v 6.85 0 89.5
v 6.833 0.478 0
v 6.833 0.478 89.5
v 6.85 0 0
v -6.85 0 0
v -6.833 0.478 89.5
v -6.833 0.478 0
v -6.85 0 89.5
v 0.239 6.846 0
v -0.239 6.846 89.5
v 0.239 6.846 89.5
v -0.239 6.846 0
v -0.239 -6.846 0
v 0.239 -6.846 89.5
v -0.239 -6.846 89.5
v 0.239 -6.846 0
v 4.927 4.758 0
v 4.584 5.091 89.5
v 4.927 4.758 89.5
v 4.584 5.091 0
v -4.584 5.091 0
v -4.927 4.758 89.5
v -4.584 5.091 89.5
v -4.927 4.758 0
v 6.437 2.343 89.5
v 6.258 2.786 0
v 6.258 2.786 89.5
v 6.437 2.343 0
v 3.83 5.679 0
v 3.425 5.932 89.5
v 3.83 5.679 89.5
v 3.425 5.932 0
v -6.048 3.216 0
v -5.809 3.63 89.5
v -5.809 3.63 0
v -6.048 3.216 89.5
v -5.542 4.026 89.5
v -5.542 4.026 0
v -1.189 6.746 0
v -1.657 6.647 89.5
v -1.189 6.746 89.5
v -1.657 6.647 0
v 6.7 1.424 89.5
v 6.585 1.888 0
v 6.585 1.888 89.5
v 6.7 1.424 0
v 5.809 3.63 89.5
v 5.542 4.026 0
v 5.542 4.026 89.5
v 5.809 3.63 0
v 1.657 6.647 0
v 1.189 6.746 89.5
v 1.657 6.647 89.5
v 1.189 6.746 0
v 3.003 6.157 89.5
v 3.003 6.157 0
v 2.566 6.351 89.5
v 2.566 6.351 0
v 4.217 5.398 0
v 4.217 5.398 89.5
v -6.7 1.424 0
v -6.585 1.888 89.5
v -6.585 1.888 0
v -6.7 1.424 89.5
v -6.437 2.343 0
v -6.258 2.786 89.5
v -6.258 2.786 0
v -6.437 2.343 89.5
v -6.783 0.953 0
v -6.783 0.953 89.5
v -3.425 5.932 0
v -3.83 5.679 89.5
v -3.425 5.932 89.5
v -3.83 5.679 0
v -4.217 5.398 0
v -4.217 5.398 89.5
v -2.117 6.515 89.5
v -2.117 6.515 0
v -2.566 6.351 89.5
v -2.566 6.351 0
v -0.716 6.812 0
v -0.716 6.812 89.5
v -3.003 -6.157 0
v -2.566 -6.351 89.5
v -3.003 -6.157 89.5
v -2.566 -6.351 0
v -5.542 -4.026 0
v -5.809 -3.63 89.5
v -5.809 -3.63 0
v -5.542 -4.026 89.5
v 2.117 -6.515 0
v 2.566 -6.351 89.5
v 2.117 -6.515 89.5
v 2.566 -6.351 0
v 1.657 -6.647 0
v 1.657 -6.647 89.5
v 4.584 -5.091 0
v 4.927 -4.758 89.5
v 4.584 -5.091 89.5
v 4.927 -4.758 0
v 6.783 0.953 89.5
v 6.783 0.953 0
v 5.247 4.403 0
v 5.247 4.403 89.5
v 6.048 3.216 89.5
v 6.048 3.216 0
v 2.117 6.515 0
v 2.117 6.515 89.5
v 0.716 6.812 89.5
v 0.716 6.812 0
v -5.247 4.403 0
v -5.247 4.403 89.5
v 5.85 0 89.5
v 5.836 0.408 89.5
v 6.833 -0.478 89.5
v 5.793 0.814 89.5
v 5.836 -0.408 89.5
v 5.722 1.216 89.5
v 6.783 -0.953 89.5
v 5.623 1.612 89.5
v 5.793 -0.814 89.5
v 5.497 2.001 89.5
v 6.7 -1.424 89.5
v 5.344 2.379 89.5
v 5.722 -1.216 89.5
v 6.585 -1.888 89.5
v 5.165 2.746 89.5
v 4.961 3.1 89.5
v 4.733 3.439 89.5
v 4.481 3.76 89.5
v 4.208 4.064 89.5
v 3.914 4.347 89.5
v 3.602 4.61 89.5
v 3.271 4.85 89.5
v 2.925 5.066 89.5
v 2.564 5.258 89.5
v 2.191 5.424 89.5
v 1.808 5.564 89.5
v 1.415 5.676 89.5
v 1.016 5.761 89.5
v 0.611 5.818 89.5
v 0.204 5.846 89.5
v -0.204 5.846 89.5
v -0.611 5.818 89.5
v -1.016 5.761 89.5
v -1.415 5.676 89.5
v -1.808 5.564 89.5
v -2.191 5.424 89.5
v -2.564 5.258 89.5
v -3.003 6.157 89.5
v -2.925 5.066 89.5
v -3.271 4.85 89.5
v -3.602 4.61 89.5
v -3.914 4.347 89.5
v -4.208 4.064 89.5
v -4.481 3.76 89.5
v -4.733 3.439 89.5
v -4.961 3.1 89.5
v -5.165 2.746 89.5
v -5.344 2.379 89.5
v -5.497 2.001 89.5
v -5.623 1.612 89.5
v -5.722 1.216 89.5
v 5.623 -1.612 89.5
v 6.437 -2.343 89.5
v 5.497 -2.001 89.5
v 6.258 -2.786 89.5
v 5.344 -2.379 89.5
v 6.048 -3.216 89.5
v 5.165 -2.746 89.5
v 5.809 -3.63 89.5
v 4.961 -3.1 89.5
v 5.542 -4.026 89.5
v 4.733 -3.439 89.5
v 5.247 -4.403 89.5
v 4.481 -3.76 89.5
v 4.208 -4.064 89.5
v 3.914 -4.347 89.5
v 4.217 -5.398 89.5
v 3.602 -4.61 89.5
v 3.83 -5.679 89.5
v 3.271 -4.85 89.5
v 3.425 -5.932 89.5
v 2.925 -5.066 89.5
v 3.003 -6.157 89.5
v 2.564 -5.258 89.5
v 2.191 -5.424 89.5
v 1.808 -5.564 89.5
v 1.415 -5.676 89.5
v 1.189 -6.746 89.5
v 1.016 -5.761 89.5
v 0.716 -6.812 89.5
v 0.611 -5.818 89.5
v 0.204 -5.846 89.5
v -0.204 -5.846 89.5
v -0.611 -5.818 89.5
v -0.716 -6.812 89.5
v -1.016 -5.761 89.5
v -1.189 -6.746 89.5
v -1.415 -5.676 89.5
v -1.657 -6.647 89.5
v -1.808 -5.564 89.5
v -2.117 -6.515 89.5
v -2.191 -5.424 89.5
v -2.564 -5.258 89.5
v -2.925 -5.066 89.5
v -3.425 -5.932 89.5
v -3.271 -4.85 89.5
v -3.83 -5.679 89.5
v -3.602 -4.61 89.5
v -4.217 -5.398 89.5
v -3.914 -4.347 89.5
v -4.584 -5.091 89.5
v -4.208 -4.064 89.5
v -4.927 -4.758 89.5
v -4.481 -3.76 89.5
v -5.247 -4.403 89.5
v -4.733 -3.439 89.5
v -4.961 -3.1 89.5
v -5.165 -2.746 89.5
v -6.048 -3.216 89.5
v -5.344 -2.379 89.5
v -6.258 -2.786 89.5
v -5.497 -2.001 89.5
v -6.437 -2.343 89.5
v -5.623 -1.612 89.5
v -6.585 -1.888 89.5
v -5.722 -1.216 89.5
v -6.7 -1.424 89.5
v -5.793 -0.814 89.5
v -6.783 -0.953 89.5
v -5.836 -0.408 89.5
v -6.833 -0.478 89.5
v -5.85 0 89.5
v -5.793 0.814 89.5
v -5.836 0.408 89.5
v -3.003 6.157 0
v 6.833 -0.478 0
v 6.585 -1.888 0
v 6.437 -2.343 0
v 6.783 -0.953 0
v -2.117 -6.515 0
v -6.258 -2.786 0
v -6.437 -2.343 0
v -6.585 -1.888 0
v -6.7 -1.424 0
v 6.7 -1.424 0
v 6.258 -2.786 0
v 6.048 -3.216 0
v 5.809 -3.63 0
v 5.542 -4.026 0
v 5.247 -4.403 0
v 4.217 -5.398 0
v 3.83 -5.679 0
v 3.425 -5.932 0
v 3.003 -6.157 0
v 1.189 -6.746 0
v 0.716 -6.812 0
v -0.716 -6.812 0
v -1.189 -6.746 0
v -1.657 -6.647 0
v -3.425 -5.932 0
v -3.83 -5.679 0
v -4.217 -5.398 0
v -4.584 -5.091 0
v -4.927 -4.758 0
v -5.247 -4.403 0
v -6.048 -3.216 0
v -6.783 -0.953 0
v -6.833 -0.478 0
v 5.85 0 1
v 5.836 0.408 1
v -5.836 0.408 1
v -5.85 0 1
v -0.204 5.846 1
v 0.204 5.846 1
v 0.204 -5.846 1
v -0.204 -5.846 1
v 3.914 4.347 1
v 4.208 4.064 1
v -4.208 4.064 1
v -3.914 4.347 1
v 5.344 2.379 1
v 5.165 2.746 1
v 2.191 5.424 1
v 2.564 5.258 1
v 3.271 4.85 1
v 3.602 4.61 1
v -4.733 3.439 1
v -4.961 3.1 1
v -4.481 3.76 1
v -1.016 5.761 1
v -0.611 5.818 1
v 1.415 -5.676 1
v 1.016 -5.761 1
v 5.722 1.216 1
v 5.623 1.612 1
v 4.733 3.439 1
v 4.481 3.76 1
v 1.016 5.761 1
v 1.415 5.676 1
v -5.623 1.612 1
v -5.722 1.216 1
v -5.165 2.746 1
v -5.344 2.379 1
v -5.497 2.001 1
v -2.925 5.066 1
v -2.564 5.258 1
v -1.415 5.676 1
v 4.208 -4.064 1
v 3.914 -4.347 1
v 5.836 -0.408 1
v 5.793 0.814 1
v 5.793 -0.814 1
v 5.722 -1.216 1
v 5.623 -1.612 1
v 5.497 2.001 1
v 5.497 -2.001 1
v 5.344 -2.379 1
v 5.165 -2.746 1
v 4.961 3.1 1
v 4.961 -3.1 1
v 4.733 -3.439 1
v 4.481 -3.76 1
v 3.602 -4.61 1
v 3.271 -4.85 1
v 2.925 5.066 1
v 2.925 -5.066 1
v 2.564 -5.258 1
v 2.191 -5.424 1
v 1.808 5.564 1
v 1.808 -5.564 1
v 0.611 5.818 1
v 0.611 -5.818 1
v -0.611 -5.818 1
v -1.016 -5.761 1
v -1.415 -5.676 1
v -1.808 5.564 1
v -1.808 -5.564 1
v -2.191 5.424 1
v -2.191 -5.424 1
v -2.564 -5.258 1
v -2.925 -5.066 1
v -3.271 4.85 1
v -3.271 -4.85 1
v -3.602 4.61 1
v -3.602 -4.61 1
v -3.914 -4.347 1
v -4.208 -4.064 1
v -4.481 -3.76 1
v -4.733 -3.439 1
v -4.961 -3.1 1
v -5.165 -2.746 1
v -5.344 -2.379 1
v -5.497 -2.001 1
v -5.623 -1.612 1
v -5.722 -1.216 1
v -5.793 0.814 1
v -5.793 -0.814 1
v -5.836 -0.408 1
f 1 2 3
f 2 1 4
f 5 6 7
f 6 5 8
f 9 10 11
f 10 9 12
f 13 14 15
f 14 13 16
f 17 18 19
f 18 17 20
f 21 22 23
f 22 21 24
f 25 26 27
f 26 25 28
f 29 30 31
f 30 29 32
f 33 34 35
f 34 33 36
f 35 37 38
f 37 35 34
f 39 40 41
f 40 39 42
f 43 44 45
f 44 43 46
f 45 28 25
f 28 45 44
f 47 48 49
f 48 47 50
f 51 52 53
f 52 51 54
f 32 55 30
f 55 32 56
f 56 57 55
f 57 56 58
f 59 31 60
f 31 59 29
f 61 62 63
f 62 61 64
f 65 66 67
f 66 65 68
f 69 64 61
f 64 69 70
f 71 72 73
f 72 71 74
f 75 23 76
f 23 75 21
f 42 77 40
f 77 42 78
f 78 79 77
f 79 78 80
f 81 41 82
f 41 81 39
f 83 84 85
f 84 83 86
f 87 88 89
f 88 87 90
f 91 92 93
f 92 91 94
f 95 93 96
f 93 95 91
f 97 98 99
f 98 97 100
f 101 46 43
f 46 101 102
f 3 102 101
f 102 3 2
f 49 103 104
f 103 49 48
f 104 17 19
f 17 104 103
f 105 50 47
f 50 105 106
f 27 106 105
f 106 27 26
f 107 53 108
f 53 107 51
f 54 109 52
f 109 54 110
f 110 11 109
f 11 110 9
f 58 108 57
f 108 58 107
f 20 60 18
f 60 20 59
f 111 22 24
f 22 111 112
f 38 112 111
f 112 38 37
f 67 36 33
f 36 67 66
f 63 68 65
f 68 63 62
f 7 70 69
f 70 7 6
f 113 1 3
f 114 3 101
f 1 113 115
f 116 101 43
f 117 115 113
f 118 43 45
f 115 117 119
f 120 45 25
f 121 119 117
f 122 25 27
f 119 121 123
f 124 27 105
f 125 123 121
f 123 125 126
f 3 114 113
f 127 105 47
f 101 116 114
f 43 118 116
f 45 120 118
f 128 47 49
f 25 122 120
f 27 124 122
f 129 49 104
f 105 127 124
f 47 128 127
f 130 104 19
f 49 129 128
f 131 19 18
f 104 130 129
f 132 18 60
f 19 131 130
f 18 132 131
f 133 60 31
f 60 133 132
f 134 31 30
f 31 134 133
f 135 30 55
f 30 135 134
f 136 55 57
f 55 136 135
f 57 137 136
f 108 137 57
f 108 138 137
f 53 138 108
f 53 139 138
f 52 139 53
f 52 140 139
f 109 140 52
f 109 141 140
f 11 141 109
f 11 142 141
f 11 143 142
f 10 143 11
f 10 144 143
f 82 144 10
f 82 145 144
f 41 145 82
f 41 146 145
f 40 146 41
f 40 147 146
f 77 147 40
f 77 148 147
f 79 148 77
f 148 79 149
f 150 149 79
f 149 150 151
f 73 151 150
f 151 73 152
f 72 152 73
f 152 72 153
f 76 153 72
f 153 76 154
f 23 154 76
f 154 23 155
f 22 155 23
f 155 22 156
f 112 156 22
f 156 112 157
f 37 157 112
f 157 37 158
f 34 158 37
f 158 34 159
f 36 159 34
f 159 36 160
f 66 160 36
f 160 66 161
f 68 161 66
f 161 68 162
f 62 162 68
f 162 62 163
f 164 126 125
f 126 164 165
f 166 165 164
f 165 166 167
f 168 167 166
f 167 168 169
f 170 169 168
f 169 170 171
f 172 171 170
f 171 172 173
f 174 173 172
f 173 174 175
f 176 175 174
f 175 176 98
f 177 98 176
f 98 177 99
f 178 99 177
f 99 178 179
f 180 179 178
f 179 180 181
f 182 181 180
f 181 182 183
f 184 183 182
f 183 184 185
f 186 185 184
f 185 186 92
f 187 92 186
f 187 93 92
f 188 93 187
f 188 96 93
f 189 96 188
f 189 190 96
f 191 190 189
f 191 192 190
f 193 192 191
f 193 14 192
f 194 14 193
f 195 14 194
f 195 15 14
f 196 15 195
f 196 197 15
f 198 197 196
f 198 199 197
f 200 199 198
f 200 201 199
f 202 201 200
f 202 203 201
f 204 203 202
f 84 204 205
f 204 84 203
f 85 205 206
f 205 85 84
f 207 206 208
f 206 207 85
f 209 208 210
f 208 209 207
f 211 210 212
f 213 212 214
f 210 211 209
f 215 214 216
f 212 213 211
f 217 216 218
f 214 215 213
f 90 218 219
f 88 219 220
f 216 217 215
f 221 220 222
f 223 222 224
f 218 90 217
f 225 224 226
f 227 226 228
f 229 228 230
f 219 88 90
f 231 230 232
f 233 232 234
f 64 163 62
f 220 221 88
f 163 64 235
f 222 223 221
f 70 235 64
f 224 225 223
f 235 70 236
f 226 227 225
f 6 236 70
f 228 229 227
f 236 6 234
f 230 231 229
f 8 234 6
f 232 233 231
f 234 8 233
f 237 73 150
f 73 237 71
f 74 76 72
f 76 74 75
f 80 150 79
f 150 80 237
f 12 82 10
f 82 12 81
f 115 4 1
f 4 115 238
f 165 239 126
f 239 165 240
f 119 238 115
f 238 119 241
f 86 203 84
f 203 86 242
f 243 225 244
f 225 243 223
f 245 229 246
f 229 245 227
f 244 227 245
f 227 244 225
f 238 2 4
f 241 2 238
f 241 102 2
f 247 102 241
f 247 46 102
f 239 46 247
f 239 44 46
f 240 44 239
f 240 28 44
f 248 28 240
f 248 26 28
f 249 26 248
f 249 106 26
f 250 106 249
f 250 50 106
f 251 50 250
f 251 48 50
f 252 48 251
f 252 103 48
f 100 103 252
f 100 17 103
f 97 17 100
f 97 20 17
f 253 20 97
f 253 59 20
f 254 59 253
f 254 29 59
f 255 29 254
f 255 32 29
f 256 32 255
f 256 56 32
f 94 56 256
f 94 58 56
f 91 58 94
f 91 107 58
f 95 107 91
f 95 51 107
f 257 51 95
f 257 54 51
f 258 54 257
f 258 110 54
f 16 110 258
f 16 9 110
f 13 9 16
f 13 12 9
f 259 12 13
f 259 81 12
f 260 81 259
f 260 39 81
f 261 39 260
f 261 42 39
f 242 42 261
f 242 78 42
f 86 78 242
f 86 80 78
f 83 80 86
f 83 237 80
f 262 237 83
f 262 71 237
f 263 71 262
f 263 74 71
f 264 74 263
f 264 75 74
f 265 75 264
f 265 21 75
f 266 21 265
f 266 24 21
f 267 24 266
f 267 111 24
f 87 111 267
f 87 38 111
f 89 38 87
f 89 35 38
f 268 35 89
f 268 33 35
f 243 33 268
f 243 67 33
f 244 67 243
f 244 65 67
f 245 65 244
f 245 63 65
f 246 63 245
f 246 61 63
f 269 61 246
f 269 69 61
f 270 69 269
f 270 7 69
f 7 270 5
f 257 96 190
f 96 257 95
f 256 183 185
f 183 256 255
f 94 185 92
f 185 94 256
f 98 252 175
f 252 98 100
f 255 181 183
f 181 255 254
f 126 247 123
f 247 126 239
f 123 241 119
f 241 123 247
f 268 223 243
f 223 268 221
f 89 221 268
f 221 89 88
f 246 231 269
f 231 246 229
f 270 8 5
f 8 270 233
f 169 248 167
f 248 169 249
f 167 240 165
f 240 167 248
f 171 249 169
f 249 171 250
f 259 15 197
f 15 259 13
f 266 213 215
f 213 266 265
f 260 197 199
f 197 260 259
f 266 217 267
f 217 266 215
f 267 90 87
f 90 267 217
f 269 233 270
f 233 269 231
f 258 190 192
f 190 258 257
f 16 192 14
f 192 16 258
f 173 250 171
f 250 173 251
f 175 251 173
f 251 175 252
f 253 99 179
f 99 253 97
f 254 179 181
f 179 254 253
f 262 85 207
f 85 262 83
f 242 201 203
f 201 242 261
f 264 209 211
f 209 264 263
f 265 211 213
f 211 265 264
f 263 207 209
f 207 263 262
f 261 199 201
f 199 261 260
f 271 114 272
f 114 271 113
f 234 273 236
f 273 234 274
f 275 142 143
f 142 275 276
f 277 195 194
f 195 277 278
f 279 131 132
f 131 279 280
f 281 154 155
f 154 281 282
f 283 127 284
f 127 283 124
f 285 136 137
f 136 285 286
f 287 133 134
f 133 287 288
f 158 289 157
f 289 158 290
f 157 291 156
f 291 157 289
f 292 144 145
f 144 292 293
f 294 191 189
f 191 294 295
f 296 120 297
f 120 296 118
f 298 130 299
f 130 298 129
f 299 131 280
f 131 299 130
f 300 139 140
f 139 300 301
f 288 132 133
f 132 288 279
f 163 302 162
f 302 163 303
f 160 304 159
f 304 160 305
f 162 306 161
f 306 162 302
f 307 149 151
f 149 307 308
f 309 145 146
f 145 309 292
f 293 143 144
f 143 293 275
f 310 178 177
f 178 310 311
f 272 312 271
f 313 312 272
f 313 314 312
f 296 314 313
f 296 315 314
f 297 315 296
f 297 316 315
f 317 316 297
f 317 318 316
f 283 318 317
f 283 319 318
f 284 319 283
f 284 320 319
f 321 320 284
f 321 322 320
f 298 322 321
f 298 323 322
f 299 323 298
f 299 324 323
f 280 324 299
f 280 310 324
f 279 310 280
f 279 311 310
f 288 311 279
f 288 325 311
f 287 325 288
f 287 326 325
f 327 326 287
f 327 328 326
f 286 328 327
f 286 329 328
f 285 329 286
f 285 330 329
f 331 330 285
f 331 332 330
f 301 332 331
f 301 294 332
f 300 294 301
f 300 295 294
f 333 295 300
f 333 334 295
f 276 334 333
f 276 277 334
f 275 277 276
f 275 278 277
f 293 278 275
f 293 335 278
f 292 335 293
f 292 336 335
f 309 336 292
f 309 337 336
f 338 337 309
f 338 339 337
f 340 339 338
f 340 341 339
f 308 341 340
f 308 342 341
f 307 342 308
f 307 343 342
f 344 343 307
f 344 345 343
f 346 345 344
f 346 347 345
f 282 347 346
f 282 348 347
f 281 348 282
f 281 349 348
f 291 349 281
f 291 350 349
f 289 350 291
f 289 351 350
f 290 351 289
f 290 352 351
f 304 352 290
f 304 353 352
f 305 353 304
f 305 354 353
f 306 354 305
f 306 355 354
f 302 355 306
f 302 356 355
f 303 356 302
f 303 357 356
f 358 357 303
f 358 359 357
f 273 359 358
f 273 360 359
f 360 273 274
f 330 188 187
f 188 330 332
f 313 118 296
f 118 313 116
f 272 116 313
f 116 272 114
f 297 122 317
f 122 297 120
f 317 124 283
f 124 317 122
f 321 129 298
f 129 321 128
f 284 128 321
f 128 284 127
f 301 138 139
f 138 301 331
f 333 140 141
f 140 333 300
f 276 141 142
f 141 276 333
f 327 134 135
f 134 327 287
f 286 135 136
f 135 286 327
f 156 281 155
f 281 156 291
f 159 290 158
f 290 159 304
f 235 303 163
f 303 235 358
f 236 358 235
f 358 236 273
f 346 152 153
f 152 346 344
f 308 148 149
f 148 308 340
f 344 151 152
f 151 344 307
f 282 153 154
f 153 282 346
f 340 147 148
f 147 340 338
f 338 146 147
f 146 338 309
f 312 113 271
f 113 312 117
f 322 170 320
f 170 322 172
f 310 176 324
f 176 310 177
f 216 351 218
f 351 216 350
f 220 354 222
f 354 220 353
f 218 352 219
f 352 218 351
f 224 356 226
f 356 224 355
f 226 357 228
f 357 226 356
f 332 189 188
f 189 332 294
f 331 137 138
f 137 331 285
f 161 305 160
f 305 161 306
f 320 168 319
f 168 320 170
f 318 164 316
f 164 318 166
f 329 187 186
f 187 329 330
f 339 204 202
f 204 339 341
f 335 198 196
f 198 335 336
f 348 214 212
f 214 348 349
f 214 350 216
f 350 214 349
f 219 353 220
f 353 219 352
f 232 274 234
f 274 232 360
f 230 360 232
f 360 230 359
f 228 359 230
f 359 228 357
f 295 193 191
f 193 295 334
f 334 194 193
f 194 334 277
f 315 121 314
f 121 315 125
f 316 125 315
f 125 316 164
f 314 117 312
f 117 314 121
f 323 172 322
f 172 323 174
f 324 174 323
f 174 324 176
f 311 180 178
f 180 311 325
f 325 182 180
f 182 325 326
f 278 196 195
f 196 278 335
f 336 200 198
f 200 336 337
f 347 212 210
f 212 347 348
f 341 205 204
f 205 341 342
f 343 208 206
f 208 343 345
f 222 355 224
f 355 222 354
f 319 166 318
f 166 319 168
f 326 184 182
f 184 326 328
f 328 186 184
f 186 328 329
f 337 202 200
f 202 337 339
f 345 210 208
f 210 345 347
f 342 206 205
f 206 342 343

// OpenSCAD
$inner_diameter = 11.5/2; //Radius of batter wall (mm)

$battery_offset = 1;

$battery_height = 29.5;
//$battery_height = 5;

$pod_width = 1;
$pod_bottom = 1;

$number_of_batteries = 1;

$tolerence = 0.2;

$endcap_top = 1;

$peg_width = 4;

$keyway_width = 5;

//$number_of_fragents = 45;
$number_of_fragents = 90;

module reference_battery($fn = $number_of_fragents) {
    // reference stethoscope head as it was too complex to load into memory
    cylinder(h = $battery_height, r = $inner_diameter);

}

module pod($fn = $number_of_fragents) {


    difference() {
        
        cylinder(h = 3*$battery_height + $pod_bottom, r =  $inner_diameter + $pod_width + $tolerence/2);
        translate([0, 0, $pod_bottom])
        cylinder(h = $battery_height*3, r =  $inner_diameter + $tolerence/2);
          
    }
}


for (a =[0:1:$number_of_batteries - 1]){
    echo(a);
    translate(v = [0, 0, a*($battery_height + $tolerence)]){

//        translate([0, 0, $pod_bottom])
//        reference_battery();
        pod();
    }
}
